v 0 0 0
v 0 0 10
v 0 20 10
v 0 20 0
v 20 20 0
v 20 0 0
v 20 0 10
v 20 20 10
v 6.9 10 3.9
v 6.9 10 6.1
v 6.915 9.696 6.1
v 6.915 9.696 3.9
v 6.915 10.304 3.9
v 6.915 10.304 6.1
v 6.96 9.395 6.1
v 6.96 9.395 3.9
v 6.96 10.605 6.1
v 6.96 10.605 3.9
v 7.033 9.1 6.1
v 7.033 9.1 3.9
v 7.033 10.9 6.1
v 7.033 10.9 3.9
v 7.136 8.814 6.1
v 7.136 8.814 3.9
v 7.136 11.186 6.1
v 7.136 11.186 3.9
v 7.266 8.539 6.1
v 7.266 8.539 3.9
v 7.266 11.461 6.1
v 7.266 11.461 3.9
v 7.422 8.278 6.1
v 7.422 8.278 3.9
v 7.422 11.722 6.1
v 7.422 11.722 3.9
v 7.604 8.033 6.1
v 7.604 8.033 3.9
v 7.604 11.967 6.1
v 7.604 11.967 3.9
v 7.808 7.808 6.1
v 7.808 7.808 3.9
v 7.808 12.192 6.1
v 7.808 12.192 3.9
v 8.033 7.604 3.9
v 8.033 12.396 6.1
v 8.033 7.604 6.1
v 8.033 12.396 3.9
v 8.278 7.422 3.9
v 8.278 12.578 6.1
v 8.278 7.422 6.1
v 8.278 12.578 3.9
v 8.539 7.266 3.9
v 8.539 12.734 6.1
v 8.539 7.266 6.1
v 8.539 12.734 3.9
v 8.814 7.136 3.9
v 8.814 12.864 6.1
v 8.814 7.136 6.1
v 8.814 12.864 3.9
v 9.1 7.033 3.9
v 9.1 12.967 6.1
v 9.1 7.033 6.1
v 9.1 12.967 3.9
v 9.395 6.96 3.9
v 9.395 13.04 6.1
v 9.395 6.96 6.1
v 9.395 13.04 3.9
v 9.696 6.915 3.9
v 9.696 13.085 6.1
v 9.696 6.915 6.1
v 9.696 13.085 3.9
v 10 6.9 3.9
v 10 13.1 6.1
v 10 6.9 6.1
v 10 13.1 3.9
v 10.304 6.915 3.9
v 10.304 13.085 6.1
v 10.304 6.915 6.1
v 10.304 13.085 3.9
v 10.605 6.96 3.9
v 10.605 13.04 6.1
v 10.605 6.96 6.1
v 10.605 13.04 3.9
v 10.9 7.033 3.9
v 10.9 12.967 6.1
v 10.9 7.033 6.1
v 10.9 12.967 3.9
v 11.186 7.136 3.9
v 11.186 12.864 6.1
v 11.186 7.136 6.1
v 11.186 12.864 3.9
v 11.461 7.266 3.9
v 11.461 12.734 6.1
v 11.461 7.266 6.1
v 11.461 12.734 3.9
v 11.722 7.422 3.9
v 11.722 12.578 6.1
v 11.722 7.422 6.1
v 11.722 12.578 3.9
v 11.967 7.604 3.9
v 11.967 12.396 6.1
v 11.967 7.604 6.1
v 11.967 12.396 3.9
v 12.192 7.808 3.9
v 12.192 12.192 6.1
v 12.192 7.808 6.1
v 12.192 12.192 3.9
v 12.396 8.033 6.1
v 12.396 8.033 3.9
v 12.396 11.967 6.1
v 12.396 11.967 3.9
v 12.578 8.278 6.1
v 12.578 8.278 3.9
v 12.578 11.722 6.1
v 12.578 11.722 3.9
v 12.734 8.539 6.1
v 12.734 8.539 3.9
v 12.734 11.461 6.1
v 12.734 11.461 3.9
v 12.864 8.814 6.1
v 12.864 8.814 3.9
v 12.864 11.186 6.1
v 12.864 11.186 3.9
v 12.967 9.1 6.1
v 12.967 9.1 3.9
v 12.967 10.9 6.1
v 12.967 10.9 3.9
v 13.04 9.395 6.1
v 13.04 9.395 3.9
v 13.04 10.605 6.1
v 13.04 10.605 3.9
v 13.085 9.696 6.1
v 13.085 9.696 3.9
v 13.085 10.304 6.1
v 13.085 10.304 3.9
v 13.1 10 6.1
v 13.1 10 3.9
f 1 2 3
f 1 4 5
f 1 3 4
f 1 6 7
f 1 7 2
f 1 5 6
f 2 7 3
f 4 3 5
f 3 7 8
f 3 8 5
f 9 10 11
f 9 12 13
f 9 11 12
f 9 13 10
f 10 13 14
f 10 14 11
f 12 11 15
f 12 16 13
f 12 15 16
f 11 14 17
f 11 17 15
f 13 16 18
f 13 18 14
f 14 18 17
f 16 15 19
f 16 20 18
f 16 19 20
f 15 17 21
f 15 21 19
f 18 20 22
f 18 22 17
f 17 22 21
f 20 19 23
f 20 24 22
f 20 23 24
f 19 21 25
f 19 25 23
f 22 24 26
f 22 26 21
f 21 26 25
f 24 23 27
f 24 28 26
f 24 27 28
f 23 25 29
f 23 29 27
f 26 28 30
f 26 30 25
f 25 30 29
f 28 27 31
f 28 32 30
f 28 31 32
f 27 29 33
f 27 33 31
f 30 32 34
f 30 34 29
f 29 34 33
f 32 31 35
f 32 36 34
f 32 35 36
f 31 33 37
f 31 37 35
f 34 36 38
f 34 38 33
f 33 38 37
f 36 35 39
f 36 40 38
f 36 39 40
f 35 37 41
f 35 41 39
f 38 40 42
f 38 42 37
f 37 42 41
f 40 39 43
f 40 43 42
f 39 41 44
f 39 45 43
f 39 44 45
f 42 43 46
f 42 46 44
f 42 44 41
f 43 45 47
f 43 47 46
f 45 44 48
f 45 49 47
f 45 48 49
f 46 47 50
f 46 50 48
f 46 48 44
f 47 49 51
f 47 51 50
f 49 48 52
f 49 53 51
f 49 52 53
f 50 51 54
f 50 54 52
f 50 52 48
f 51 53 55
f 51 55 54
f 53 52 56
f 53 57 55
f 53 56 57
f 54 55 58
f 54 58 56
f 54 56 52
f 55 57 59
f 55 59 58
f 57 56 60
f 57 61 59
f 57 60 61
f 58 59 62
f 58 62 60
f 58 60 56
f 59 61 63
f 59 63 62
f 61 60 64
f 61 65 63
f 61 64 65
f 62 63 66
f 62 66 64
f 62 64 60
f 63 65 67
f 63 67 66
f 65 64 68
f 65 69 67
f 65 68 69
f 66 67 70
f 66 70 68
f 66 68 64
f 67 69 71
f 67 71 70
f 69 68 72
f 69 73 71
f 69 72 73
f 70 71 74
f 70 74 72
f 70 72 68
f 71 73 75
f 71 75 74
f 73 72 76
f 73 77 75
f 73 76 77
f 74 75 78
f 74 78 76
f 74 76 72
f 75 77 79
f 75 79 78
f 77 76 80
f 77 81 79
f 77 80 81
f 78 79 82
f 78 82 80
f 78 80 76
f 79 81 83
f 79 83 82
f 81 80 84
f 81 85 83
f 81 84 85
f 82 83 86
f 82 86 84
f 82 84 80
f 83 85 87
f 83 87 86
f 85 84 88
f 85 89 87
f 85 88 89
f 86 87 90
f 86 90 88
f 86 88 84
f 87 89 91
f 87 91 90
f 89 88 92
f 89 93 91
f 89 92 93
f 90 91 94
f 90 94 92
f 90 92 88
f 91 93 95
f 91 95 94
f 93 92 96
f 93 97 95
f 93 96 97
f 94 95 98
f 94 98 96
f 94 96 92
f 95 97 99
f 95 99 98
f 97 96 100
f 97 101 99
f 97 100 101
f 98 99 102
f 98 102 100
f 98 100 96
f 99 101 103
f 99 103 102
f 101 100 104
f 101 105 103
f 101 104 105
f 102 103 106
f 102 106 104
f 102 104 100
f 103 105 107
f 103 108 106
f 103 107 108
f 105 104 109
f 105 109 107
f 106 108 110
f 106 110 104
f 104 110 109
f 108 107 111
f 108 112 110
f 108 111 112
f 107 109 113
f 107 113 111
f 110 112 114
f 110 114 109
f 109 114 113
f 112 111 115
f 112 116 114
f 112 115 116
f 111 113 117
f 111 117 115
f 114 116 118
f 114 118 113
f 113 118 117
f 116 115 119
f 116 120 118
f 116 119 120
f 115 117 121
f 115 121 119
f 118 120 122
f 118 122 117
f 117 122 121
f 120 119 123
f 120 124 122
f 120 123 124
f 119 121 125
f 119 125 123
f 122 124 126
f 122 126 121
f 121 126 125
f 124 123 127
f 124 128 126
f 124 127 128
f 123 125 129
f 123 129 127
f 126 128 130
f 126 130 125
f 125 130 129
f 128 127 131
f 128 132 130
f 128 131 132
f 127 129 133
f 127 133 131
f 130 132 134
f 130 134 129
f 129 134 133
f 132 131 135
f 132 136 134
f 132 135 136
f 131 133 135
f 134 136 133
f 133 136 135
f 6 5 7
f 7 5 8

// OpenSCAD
// simple form piece for testing and learning
// 06.09.2025 Sebastian Weigl

// set the fregment sizes
$fn = $preview ? 48 : 64;
// declare vars
//  first body
fir_body_height=10;
fir_body_width=20;
fir_body_depth=20;
fir_body_diameter=6.2;
//  second body
sec_body_height=10;
sec_body_width=20;
sec_body_depth=20;
sec_body_diameter=6.2;

// bottom piece
difference() {
color("blue")
cube([fir_body_width,fir_body_depth,fir_body_height],false);

color("red")
translate([10,10,5])
  cylinder(h=2.2,d=fir_body_diameter,center=true);
}
